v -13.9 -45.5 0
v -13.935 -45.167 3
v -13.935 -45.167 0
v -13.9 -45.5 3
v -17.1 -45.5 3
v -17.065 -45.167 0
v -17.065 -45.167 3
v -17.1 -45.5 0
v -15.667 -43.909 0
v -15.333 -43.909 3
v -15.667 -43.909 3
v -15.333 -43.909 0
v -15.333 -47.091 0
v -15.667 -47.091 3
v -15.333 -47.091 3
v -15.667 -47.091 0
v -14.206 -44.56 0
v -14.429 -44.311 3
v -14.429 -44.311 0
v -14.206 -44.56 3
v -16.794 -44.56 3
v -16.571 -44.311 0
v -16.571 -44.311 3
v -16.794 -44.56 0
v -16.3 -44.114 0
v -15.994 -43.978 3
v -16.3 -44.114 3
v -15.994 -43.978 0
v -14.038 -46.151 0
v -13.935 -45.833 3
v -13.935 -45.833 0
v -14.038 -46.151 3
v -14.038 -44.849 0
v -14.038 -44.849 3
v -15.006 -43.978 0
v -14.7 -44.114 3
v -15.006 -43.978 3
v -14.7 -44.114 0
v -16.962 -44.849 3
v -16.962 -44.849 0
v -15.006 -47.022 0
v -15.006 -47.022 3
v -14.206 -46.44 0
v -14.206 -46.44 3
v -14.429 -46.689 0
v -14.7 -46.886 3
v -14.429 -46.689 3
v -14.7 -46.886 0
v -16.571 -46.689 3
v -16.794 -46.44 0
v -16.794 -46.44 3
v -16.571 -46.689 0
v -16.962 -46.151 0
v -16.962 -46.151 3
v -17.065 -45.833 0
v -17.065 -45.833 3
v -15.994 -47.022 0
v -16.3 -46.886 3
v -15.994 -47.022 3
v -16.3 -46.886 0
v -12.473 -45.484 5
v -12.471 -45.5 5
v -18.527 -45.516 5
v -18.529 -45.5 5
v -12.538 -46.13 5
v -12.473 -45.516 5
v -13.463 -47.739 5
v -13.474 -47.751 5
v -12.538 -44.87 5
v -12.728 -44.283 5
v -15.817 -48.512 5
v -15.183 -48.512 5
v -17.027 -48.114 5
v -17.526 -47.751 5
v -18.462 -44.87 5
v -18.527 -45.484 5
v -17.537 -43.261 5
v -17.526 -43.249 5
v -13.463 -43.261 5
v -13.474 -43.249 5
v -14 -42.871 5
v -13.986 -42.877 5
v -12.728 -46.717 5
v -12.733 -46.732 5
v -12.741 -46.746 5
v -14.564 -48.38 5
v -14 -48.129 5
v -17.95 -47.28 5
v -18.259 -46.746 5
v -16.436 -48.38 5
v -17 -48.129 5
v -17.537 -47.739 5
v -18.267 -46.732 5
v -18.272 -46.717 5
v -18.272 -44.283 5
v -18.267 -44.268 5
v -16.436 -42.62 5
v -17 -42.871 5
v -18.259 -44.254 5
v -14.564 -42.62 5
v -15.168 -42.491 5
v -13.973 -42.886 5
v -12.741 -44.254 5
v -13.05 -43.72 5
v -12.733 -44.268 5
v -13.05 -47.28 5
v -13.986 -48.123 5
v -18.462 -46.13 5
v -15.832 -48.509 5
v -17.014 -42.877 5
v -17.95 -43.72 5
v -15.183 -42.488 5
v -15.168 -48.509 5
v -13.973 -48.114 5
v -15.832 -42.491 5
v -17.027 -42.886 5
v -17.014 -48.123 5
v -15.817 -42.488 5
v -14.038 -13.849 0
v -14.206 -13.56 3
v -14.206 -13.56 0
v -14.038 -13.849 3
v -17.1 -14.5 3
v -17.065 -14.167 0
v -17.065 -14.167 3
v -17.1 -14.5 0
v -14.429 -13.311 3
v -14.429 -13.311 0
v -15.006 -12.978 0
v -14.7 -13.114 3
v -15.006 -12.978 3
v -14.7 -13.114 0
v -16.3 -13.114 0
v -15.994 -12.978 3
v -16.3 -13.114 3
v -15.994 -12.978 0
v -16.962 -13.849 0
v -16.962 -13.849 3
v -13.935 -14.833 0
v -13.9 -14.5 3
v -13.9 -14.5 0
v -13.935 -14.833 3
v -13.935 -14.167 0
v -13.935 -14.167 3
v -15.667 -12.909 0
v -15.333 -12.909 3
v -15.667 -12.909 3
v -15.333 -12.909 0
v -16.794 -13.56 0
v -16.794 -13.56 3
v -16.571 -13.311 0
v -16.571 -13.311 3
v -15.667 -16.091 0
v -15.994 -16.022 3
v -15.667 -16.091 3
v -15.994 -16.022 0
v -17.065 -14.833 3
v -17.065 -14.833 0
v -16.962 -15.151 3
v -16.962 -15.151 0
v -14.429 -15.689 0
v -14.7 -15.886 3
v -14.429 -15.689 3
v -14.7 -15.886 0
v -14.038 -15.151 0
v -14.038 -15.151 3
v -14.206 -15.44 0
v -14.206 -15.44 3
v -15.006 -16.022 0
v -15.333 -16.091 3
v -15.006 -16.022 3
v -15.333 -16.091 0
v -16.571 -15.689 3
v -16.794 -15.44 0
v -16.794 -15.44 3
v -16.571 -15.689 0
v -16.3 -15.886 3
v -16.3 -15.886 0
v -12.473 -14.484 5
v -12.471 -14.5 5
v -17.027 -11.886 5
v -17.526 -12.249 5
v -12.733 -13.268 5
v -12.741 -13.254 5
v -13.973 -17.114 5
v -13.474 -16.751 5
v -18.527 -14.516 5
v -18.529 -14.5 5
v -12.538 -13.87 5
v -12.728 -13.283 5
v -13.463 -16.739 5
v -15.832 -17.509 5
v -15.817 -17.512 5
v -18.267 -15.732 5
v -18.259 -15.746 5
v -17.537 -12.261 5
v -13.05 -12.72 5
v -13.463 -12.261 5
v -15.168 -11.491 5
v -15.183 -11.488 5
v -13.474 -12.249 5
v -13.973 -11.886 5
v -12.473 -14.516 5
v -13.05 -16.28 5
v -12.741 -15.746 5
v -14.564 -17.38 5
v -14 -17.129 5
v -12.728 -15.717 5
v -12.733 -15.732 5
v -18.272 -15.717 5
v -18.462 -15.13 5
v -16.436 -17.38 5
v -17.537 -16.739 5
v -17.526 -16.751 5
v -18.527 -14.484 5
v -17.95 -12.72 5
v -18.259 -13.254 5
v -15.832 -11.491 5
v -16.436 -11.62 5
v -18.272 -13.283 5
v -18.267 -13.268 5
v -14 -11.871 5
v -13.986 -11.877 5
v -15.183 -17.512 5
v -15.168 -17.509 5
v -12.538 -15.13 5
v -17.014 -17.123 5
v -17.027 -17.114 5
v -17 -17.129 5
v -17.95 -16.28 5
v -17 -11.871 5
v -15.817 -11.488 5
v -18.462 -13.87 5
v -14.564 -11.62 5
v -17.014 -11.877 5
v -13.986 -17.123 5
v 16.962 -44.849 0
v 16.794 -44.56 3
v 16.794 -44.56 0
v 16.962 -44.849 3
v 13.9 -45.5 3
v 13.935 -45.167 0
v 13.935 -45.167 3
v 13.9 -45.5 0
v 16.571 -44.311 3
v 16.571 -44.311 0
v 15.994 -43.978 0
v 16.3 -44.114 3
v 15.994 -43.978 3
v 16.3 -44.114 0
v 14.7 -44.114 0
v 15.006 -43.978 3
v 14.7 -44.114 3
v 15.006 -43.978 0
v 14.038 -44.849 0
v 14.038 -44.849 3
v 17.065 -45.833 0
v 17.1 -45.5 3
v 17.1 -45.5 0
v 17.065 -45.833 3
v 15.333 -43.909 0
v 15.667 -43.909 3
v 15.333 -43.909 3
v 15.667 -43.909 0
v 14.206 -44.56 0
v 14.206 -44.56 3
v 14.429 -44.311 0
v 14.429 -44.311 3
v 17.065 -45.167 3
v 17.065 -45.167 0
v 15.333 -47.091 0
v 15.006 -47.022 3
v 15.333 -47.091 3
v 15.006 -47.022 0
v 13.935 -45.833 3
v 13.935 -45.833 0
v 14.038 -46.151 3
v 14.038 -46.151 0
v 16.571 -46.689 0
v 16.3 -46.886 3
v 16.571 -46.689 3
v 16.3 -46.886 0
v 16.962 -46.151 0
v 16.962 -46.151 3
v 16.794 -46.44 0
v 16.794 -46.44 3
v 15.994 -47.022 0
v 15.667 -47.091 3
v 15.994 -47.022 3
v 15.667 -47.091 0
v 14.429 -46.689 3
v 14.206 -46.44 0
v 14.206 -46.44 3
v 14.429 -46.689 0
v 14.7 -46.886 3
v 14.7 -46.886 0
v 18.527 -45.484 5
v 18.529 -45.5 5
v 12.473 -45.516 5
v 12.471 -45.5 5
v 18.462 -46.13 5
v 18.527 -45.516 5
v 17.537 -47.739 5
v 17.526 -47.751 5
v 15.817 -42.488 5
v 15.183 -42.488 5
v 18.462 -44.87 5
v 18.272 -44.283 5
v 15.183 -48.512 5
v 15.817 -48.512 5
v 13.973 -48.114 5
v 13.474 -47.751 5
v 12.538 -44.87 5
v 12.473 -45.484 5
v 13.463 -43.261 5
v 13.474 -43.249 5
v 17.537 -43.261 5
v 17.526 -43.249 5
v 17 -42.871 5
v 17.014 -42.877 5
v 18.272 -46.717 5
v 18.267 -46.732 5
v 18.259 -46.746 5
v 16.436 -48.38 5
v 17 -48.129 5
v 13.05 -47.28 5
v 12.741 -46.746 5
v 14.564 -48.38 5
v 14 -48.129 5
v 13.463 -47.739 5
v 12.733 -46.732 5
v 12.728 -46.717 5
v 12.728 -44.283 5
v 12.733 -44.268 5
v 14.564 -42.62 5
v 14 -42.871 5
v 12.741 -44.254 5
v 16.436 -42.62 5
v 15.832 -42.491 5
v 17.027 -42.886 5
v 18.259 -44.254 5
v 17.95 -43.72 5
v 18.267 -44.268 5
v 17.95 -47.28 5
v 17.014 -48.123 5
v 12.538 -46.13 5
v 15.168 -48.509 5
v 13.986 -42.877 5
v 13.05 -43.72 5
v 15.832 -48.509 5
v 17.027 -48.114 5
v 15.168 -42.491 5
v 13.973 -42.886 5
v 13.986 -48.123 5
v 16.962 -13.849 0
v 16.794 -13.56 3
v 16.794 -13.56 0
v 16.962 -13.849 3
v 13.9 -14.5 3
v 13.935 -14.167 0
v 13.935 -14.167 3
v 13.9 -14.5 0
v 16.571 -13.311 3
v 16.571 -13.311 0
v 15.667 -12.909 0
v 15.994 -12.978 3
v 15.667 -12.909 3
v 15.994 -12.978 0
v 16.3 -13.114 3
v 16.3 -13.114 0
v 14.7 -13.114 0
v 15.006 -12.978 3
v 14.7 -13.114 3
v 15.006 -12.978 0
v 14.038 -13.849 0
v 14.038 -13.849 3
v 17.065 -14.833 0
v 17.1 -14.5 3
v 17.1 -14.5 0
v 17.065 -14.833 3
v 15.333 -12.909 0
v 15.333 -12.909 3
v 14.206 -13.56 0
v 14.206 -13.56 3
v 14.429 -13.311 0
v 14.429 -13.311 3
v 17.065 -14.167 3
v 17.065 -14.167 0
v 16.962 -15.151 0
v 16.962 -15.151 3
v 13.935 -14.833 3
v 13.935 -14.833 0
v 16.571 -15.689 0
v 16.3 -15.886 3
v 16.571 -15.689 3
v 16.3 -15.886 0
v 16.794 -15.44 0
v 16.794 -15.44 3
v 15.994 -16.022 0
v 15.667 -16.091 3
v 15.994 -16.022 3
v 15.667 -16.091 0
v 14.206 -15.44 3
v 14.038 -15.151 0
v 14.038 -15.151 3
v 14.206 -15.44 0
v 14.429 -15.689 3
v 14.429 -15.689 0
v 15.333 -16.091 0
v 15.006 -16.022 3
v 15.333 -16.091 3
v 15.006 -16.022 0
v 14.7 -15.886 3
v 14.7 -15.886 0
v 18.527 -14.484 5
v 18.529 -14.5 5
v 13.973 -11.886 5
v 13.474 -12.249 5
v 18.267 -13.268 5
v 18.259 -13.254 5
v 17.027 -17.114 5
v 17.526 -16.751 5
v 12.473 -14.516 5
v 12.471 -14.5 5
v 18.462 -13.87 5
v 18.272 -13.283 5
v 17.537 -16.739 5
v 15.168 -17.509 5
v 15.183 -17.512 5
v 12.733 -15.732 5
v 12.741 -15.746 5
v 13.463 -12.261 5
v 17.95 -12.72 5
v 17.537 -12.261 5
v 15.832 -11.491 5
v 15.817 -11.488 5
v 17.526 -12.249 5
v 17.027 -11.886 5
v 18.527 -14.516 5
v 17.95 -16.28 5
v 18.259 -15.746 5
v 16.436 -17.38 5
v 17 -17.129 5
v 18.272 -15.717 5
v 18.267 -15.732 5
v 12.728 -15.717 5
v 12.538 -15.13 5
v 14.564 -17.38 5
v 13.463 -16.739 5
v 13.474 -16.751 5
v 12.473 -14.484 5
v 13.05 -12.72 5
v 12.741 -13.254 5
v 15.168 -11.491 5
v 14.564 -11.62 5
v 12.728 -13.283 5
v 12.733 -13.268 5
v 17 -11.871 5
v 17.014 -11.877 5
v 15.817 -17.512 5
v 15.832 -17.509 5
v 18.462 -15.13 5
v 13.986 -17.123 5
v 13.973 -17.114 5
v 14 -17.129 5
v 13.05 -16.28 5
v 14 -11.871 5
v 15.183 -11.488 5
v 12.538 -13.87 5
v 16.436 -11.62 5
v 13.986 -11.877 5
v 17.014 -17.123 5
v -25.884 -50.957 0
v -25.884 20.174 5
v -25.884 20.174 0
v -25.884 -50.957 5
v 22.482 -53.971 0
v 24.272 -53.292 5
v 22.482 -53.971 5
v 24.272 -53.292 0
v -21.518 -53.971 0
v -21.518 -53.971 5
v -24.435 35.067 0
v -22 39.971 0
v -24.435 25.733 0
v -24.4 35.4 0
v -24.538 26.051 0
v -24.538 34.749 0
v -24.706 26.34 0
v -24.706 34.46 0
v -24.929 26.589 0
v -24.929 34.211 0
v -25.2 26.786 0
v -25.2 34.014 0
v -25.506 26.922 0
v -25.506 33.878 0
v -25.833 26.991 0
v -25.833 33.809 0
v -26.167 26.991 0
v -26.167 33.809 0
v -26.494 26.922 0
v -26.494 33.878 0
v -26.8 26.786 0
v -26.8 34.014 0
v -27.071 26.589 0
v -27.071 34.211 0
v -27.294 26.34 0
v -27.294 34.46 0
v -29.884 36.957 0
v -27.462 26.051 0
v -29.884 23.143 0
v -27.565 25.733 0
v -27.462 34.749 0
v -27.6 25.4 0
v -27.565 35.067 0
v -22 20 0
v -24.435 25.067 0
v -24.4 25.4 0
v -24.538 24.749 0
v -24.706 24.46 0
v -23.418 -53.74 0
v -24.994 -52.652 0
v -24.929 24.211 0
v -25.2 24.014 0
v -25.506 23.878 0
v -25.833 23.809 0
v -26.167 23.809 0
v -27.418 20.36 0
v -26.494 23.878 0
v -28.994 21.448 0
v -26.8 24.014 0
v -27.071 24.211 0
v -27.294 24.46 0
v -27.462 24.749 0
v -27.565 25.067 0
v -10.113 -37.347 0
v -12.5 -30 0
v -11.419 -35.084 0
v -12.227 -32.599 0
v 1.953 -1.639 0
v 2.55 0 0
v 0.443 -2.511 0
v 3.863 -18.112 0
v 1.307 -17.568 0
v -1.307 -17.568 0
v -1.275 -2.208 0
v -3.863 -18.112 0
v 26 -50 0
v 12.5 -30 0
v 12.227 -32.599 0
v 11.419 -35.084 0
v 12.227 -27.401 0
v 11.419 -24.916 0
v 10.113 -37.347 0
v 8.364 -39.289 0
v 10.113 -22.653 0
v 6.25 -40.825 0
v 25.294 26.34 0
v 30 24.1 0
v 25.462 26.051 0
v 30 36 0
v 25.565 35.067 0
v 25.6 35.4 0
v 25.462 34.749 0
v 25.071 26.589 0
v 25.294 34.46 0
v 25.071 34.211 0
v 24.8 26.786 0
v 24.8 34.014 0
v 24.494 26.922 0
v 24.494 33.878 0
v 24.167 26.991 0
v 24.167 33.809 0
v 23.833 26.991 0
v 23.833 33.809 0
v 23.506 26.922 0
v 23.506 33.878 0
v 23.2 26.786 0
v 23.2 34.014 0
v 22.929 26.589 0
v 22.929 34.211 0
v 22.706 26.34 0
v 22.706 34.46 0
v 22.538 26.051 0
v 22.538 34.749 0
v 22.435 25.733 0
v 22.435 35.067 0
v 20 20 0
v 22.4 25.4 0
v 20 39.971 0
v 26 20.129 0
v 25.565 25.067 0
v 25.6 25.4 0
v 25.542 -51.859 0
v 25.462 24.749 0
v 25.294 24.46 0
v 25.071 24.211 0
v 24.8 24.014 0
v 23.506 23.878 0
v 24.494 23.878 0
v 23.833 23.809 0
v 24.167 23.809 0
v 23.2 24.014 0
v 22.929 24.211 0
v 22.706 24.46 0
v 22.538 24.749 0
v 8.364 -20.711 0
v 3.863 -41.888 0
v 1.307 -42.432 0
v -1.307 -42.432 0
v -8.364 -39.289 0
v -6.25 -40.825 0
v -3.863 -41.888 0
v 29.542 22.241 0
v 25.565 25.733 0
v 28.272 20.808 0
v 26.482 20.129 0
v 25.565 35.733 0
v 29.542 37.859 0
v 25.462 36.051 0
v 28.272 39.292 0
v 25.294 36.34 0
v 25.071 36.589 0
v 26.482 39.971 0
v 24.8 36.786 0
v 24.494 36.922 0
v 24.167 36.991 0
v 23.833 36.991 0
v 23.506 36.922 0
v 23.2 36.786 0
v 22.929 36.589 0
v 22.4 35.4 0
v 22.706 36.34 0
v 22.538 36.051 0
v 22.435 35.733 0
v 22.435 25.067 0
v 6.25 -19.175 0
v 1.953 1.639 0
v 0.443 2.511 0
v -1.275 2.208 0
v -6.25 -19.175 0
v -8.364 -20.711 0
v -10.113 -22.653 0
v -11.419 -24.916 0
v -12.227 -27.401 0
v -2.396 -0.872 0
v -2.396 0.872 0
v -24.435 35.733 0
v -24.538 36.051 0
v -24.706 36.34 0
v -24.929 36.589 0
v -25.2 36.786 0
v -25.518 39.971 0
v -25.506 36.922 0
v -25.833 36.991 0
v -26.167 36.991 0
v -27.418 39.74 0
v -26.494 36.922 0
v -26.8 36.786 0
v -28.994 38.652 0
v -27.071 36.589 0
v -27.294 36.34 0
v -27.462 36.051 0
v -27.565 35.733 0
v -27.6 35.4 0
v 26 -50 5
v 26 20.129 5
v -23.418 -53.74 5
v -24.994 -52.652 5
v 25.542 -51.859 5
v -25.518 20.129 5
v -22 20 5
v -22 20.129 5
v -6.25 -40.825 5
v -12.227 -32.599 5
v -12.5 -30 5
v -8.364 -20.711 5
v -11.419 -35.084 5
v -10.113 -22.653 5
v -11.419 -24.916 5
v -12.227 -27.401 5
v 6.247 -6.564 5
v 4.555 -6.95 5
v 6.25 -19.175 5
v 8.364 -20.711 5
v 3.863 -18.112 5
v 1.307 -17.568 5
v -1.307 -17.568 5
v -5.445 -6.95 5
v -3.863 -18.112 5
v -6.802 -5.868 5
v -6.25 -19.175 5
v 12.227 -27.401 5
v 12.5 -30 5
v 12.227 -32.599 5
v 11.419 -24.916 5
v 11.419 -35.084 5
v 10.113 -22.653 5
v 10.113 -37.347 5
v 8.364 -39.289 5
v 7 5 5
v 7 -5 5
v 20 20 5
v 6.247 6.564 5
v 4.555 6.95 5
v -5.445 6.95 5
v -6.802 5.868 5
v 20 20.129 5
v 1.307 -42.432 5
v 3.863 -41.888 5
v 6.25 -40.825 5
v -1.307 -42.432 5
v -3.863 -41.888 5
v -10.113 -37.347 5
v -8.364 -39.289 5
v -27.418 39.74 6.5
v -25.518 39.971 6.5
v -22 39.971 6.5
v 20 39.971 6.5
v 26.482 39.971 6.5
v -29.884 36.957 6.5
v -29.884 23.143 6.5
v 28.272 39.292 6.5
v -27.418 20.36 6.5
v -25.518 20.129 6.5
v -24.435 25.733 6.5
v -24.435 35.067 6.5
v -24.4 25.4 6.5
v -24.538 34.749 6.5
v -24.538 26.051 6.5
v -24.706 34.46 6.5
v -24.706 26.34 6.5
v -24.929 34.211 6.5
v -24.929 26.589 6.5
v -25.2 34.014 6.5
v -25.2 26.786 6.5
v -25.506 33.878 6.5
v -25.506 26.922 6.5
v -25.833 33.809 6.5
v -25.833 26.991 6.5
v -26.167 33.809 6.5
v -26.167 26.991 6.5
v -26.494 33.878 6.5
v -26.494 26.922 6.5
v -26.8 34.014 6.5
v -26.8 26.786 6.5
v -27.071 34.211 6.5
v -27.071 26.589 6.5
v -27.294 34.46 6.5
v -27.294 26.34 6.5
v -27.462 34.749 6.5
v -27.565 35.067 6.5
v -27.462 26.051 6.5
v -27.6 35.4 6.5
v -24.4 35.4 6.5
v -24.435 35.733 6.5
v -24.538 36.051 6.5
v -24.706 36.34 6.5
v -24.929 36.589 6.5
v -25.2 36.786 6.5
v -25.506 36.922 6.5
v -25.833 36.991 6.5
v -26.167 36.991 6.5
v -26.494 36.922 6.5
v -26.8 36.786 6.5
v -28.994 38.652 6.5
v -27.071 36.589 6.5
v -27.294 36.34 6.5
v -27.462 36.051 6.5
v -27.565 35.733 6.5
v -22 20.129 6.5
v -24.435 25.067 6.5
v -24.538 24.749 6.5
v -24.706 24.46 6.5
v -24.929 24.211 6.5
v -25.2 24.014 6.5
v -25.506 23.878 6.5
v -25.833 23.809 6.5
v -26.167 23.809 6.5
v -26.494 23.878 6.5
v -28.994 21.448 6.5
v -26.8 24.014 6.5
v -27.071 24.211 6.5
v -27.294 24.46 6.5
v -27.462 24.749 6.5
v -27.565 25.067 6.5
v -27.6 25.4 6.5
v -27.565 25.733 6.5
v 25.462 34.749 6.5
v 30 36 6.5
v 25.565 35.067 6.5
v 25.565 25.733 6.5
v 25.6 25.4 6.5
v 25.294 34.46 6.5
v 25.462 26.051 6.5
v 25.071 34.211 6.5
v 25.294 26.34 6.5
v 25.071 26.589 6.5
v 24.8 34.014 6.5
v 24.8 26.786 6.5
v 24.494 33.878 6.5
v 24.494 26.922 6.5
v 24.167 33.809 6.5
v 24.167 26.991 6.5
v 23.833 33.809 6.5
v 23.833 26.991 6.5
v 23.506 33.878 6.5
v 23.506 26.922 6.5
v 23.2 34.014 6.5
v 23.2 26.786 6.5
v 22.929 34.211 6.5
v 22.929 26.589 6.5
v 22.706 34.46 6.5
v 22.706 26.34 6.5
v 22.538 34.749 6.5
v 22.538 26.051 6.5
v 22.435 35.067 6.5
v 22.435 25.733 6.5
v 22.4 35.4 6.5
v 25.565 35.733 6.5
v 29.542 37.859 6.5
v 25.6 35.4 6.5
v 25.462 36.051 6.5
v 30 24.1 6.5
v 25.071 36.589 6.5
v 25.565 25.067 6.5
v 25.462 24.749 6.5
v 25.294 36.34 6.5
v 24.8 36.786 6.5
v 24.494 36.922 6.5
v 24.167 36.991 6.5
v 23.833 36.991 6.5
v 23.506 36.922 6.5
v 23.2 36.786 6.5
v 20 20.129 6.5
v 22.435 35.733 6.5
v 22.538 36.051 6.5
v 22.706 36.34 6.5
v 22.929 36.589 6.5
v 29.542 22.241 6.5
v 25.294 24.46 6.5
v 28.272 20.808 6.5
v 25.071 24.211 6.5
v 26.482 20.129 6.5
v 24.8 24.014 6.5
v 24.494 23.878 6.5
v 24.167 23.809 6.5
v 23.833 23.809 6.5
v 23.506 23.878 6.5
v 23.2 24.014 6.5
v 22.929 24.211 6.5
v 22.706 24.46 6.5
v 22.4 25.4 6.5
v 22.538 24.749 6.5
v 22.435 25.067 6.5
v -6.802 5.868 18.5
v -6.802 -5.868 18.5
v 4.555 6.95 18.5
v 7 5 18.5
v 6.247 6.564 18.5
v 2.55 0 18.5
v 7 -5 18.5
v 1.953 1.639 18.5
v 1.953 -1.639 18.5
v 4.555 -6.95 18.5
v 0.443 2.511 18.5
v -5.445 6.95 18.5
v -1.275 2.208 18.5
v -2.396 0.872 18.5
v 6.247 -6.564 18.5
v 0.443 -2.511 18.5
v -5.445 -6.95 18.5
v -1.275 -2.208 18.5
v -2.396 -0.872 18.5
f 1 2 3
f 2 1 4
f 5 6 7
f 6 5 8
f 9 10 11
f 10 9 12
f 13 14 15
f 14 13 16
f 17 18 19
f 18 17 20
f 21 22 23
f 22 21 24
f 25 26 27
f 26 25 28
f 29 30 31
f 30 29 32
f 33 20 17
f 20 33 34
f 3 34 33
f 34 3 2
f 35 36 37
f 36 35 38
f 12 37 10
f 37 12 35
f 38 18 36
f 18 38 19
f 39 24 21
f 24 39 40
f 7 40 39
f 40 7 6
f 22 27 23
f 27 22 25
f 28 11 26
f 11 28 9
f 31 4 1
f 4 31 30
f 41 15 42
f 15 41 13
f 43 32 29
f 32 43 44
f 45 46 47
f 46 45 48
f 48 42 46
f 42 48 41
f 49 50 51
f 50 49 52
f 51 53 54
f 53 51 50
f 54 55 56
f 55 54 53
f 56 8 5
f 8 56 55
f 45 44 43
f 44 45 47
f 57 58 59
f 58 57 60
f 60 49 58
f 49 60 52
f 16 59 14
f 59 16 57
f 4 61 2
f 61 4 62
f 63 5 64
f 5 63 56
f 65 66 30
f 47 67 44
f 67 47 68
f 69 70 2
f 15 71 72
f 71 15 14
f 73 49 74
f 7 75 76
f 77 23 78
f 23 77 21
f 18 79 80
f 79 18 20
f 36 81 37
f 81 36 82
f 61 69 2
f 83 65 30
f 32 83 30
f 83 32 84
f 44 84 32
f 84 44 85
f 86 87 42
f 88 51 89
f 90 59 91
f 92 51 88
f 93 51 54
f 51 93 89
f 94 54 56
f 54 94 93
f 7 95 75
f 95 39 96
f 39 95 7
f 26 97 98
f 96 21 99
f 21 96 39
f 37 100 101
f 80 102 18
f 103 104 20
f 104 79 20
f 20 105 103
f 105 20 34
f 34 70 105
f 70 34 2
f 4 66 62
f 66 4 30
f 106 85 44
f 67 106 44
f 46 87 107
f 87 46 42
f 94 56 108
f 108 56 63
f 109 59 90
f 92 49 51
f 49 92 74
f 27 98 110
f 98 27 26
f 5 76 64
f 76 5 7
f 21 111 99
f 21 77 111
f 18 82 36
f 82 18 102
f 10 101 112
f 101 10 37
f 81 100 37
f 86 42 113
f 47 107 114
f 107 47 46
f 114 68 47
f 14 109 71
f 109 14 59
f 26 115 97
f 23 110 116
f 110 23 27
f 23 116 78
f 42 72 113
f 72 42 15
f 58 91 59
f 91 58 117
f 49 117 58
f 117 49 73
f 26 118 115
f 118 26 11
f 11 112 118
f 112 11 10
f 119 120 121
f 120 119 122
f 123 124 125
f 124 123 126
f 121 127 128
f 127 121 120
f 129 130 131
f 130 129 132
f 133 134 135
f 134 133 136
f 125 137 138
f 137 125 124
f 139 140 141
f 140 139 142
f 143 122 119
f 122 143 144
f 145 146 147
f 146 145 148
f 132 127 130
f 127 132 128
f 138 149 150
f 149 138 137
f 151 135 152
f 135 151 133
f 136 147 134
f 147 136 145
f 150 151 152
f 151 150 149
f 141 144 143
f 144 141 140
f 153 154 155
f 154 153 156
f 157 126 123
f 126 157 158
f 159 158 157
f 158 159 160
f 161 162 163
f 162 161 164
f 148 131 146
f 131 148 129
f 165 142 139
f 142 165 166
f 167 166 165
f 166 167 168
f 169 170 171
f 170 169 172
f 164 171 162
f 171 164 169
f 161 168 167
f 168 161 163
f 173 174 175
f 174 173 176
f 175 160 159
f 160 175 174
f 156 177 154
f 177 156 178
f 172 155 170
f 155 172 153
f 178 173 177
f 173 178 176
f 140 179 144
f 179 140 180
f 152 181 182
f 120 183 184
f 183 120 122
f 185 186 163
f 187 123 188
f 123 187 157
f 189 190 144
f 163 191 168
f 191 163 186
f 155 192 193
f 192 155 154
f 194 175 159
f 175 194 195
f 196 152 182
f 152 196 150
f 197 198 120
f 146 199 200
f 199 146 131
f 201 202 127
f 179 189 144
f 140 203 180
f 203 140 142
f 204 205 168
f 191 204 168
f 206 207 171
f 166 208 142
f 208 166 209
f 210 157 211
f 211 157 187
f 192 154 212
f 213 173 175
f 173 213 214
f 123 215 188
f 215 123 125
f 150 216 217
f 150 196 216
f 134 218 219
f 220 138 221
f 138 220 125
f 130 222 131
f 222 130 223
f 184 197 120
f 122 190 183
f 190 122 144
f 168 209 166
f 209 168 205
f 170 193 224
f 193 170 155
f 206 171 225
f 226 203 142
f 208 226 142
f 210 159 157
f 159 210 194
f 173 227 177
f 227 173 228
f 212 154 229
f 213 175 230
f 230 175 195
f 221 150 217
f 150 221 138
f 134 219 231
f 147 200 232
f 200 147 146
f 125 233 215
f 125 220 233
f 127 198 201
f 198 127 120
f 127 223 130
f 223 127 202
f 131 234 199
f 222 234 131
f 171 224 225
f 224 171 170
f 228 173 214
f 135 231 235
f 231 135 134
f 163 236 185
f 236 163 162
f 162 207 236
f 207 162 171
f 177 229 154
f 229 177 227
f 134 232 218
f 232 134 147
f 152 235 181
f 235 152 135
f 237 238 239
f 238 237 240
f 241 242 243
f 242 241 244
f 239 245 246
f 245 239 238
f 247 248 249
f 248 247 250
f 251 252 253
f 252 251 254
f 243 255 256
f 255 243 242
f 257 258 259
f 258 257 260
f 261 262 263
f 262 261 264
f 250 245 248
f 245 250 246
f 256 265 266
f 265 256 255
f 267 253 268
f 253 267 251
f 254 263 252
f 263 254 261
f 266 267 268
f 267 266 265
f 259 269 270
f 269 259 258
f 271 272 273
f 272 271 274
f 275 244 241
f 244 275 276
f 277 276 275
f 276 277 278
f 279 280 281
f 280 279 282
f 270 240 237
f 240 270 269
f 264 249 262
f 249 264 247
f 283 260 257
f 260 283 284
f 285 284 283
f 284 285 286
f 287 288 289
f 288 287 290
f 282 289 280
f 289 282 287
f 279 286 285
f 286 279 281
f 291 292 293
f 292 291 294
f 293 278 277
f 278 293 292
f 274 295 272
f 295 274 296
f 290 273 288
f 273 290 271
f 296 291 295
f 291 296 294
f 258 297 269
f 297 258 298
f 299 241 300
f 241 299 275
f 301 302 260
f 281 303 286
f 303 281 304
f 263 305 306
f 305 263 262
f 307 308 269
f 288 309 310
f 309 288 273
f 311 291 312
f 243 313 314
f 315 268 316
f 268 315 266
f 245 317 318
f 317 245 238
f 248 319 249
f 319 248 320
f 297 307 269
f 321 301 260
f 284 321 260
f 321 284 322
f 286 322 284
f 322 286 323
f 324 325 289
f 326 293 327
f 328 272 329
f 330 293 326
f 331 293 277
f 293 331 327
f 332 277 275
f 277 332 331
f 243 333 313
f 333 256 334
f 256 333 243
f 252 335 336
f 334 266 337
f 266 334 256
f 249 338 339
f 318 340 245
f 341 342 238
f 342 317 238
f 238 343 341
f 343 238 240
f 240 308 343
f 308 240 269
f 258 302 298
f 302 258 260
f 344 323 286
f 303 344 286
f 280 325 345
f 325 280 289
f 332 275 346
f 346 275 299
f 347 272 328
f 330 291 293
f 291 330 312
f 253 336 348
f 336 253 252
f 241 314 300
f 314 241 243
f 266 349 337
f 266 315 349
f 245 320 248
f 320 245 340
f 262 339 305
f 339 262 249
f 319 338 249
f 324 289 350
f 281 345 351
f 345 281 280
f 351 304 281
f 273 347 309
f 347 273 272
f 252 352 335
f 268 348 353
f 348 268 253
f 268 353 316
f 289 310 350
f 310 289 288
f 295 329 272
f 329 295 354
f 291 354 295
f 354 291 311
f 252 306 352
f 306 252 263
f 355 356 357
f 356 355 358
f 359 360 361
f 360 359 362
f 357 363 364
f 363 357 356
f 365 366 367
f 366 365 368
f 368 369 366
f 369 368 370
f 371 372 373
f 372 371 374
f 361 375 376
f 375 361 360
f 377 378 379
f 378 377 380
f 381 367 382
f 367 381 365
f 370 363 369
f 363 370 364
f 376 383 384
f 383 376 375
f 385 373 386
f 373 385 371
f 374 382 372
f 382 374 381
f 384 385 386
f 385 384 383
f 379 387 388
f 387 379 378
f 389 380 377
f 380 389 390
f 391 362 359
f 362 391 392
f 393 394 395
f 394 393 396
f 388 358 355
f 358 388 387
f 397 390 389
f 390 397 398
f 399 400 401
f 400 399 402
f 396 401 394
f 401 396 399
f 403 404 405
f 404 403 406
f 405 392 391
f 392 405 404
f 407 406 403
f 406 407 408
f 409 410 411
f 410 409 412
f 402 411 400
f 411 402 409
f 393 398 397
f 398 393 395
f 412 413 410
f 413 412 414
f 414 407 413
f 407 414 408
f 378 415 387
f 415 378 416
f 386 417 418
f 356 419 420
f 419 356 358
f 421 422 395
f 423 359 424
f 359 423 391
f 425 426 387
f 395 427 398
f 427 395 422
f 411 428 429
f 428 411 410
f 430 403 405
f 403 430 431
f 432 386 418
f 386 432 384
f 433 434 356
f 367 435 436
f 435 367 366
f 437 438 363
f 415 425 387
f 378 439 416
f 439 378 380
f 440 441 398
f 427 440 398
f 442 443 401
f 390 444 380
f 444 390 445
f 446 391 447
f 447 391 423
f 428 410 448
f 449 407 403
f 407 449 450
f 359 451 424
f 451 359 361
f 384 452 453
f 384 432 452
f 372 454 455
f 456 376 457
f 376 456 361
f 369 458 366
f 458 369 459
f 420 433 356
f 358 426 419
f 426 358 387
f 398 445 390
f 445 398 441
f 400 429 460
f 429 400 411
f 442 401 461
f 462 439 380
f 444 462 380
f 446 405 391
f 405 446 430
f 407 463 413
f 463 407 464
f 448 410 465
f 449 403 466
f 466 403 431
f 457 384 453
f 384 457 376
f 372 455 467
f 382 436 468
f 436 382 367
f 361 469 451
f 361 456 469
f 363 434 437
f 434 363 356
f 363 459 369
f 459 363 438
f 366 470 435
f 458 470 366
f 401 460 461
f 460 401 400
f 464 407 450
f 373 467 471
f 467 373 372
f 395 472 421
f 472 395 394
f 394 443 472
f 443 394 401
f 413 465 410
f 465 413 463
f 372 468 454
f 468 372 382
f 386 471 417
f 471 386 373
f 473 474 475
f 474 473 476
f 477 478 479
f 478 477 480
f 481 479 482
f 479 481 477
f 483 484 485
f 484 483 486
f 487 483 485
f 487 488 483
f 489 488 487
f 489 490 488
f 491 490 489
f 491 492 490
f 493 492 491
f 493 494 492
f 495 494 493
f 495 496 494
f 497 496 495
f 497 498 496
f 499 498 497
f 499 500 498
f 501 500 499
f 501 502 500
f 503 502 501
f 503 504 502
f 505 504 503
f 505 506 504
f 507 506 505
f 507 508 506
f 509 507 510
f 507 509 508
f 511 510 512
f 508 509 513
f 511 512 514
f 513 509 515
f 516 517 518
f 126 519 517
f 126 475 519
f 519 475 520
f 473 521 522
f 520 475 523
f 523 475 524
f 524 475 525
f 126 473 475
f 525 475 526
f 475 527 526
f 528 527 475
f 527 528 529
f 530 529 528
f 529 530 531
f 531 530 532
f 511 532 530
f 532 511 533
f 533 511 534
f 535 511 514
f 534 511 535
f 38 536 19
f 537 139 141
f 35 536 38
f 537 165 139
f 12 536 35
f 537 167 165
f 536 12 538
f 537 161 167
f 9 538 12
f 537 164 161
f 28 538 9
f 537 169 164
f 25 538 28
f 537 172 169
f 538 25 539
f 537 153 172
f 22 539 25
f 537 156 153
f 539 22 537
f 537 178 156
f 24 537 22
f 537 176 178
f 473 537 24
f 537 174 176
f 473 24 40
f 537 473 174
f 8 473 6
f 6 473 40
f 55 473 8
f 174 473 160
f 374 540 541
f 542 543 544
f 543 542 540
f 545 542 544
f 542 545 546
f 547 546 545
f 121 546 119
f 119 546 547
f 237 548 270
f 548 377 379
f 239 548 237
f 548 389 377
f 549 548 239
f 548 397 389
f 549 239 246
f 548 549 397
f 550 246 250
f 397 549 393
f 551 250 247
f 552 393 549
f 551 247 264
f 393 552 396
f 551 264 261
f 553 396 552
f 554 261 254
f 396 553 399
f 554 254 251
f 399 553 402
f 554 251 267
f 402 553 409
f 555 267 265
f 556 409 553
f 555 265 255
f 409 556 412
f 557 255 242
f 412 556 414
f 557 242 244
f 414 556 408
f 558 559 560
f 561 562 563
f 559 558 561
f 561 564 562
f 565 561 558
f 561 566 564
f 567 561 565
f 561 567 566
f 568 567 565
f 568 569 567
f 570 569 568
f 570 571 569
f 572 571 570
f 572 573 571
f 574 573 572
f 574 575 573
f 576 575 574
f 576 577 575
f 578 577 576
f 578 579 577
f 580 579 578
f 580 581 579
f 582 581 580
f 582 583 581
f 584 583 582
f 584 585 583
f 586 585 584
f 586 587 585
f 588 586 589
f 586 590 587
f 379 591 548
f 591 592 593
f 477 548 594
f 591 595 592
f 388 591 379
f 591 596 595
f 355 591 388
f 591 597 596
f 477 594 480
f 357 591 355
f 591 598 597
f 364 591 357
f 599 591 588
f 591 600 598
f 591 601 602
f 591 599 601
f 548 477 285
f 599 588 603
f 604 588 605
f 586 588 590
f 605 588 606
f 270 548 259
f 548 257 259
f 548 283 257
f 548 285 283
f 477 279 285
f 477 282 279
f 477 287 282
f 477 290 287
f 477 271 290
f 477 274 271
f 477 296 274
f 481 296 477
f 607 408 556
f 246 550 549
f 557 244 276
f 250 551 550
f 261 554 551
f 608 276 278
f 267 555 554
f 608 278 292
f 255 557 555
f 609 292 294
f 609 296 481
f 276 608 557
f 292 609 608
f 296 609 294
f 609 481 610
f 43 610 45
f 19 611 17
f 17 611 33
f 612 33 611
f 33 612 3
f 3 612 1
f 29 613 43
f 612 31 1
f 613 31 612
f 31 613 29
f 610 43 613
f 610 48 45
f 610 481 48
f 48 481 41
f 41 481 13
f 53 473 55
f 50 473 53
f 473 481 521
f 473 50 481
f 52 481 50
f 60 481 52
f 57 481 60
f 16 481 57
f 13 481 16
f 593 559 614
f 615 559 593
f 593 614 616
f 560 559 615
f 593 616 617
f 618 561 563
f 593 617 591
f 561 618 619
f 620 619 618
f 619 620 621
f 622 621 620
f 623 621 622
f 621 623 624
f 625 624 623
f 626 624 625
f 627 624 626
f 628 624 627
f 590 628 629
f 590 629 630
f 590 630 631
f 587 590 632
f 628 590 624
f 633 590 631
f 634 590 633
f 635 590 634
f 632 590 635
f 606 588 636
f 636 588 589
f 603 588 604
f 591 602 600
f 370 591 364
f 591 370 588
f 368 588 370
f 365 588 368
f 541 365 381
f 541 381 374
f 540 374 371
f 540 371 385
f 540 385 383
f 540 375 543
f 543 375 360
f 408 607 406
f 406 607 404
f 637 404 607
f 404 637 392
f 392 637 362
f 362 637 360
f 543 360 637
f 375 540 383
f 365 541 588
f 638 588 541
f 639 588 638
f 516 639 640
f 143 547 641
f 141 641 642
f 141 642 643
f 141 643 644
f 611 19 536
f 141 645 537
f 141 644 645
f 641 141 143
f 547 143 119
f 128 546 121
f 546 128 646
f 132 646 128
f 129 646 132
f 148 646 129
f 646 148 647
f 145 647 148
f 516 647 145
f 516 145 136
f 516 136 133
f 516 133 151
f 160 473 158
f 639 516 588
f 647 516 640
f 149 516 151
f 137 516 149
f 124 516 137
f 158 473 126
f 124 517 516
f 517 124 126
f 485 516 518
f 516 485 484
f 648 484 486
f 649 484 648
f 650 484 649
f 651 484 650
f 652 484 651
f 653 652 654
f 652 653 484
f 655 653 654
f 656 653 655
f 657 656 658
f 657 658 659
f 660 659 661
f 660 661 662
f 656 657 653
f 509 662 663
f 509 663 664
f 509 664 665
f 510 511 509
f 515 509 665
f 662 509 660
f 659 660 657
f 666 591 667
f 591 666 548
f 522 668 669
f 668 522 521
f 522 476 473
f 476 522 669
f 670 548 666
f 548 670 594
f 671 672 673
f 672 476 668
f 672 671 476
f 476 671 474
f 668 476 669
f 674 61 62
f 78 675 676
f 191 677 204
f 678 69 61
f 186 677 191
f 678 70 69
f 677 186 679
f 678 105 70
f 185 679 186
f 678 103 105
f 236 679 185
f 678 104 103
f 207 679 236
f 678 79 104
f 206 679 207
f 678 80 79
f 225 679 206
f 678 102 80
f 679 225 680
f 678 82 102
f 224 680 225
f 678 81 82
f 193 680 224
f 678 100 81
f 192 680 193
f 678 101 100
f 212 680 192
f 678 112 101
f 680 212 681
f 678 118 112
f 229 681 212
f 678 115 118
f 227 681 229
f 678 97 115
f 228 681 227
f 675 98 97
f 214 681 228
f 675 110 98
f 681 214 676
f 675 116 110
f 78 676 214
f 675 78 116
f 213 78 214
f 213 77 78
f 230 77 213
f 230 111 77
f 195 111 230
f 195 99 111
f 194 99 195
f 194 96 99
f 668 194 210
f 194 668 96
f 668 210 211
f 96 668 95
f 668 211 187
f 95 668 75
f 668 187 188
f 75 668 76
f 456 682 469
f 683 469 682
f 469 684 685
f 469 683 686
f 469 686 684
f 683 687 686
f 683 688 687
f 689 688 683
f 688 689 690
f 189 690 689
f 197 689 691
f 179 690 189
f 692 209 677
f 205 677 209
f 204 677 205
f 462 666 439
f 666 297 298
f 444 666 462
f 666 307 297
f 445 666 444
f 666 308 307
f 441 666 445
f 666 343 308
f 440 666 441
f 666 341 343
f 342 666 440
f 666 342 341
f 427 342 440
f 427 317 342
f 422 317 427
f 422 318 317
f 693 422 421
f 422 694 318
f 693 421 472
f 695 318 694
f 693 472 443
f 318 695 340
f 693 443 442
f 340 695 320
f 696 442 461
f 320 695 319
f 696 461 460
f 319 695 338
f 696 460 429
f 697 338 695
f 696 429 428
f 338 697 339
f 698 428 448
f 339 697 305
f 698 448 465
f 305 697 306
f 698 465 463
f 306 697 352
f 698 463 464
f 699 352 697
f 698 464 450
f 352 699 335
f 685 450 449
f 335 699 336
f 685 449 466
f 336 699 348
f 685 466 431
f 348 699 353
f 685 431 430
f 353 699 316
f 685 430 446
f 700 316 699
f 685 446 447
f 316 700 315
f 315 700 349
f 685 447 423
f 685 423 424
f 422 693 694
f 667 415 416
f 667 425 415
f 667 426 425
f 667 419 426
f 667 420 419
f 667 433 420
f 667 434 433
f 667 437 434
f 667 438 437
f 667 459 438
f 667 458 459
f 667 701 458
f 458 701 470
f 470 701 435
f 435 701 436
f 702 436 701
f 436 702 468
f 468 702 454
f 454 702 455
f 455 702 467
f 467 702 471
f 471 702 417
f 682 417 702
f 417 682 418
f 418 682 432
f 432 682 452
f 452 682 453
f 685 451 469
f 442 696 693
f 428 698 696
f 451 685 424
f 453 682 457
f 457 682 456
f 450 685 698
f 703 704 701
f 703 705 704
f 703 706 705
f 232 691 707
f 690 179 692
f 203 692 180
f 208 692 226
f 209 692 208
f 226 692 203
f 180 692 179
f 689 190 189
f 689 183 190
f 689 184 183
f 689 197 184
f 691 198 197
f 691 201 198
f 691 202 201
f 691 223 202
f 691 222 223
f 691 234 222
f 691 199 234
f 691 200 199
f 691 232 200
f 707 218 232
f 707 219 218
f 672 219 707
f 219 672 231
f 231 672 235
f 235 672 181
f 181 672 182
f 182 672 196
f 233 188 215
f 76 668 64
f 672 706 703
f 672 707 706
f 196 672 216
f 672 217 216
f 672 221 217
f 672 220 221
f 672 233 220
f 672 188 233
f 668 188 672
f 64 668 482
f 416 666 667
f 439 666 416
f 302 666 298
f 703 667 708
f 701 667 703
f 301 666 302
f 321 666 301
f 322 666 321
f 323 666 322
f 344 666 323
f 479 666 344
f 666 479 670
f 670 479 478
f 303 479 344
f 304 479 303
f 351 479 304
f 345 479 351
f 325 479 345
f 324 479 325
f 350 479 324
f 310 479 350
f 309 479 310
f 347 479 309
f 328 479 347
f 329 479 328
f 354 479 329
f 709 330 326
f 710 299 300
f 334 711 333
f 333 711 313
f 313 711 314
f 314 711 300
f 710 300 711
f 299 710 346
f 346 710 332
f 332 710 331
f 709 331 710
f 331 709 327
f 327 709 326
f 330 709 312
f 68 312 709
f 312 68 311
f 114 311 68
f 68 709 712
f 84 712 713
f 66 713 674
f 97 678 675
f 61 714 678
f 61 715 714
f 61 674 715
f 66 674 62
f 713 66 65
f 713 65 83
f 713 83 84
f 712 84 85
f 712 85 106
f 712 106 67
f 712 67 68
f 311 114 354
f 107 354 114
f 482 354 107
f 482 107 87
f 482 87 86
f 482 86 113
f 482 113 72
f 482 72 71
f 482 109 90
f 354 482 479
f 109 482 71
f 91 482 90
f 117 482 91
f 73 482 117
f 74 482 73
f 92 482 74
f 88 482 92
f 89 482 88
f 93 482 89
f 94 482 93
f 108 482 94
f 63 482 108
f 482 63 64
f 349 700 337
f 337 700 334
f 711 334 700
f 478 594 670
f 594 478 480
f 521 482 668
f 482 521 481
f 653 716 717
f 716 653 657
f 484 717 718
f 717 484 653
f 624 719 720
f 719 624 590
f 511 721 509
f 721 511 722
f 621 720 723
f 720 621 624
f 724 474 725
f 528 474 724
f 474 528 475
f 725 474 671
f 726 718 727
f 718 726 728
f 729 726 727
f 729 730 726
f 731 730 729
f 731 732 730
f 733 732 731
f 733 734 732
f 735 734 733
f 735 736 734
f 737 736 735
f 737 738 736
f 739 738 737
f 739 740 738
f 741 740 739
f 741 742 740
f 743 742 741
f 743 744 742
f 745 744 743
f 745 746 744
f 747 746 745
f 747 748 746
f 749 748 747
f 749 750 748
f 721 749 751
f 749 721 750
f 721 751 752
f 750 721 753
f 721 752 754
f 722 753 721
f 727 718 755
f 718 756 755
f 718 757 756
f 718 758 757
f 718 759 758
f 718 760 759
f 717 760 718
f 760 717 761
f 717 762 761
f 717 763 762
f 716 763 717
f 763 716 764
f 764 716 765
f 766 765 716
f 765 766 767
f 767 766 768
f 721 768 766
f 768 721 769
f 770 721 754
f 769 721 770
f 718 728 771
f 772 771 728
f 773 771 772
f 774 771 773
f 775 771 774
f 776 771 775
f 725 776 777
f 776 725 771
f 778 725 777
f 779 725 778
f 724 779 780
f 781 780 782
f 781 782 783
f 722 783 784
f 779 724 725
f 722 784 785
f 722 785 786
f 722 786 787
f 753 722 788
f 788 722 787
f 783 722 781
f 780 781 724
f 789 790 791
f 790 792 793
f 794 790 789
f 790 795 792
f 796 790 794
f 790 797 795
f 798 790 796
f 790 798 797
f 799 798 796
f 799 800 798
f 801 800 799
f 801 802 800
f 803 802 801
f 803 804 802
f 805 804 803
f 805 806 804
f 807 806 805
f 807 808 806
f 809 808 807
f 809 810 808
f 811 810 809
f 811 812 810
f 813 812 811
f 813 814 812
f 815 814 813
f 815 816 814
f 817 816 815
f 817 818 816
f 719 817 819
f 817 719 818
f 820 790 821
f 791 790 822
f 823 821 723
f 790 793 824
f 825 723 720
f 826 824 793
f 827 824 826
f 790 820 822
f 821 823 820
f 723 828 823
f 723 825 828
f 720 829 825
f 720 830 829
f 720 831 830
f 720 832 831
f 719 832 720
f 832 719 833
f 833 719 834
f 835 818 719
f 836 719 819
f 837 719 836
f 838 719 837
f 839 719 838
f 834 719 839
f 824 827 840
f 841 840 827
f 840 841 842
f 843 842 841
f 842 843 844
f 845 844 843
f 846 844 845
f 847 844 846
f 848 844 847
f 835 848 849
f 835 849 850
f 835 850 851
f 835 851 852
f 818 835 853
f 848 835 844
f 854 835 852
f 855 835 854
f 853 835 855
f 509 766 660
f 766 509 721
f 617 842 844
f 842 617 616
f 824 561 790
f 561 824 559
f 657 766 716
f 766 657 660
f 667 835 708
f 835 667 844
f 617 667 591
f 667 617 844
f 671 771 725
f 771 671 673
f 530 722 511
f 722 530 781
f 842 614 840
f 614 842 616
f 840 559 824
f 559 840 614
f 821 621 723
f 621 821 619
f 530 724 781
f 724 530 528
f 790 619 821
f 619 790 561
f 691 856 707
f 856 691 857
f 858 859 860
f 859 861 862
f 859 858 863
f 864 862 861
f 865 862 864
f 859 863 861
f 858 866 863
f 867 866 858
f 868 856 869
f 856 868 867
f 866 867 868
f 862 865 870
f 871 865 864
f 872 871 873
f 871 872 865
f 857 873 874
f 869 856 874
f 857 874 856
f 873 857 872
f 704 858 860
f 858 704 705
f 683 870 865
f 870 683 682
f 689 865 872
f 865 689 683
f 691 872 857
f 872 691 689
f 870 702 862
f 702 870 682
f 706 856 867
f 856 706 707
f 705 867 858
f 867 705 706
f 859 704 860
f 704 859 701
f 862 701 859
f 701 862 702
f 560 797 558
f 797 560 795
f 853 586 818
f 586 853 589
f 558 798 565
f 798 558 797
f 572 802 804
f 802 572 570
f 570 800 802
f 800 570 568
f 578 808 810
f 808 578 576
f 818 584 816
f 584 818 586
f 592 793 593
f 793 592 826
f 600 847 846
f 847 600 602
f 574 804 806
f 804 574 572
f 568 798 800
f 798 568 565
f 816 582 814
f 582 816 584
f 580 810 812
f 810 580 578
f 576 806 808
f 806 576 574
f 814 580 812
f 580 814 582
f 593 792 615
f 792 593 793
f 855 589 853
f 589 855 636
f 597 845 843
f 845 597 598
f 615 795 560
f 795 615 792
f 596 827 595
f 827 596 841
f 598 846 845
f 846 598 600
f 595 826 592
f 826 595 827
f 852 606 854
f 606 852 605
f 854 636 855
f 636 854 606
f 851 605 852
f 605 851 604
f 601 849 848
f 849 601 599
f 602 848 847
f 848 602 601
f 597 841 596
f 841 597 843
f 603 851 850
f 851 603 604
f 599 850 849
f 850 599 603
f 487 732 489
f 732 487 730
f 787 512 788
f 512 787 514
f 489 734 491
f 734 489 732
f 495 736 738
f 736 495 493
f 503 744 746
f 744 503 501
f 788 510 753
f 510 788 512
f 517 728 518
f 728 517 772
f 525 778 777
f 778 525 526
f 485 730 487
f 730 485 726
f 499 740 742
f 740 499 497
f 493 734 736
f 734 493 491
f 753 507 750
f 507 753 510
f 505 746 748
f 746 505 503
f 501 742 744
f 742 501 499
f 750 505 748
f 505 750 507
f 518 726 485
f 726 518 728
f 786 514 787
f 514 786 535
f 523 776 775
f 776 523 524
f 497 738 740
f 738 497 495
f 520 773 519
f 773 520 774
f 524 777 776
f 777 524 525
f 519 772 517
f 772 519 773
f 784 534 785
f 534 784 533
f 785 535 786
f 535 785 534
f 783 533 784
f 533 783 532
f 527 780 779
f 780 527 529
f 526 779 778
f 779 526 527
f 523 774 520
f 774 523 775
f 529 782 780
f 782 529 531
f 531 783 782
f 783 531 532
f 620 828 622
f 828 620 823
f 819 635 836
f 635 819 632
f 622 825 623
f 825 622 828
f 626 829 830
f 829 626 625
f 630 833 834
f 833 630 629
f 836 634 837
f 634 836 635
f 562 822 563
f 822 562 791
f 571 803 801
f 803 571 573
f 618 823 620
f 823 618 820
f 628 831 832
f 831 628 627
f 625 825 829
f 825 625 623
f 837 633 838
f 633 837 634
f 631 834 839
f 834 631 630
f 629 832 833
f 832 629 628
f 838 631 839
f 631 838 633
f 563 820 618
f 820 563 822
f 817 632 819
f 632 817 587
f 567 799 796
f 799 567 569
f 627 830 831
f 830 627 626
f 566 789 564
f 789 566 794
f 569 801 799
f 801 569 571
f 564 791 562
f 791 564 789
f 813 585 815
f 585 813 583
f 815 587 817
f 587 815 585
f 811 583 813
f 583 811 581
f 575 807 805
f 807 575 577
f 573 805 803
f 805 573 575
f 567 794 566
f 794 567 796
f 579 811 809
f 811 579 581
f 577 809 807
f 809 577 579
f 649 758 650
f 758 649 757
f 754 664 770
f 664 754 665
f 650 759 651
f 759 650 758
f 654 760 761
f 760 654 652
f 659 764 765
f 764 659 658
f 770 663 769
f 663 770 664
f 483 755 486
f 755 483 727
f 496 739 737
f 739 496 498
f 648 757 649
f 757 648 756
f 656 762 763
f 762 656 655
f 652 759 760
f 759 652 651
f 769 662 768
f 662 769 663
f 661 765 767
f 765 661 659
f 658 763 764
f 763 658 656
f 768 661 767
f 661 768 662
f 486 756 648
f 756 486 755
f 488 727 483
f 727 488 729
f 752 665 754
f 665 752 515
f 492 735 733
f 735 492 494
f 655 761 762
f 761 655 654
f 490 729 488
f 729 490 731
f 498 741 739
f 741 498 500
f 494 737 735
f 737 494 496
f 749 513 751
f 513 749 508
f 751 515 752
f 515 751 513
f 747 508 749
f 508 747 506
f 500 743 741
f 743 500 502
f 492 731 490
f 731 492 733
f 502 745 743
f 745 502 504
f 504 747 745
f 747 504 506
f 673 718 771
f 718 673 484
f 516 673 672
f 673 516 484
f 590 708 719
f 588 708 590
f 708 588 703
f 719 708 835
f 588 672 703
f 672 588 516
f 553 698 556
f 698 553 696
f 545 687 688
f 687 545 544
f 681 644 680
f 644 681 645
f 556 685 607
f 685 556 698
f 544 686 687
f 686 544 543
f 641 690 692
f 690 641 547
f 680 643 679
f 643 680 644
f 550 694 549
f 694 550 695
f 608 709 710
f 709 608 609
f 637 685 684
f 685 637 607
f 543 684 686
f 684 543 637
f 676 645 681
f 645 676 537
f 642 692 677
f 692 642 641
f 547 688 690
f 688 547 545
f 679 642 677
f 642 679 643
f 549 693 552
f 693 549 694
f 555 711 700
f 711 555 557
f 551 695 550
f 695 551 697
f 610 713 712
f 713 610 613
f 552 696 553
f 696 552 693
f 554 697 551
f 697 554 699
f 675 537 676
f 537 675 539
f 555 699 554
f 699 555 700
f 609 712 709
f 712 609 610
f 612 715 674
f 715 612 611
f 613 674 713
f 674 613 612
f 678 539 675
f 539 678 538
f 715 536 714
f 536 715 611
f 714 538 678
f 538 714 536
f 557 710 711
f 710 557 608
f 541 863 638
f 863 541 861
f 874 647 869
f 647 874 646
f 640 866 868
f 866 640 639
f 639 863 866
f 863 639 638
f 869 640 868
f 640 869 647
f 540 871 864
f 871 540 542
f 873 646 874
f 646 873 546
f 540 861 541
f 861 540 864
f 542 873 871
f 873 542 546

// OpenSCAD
// file: commons.scad
/**
 * 
 * ommons.scad
 * 
 * Created by Diego Viejo
 * 28/Oct/2015
 * 
 * Common definitions for pendulum extruder
 * 
 */

anguloRot = 8; 

anguloActual = -anguloRot;

pendulumHeight = 6; //4
shaftDist = (42+16)/2+1; //(nema17width + 625zzDiam)/2 + 1;
shaftPos = 15+7.5+0.25;
tipPos = shaftPos-9.72/2;
tipHeight = pendulumHeight+10.4+0.25;

backPlateHeight = 5;
servoWidth = 41.5 + 0.5;
// main file
/**
 * BackPlate.scad
 * 
 * Created by Diego Viejo
 * 2/Nov/2015
 * 
 */

include<commons.scad>

backPlate();

module backPlate()
difference()
{
    union()
    {
      //main body
      hull()
      {
	translate([-22, -shaftDist-20, 0]) cylinder(d=8, h=backPlateHeight);
	translate([22, -shaftDist-20, 0]) cylinder(d=8, h=backPlateHeight);
	translate([-22, shaftDist+2, 0]) cylinder(d=8, h=backPlateHeight);
	translate([22, shaftDist+2, 0]) cylinder(d=8, h=backPlateHeight);
      }
      //servo
      hull()
      {
	translate([-26, shaftDist+6, 0]) cylinder(d=8, h=backPlateHeight+1.5);
	translate([26, shaftDist+6, 0]) cylinder(d=8, h=backPlateHeight+1.5);
	translate([-26, shaftDist-10+4.1, 0]) cylinder(d=8, h=backPlateHeight+1.5);
	translate([26, shaftDist-10+4.1, 0]) cylinder(d=8, h=backPlateHeight+1.5);
      }
      //main shaft
      hull()
      {
	translate([-5, -5, 0]) cylinder(d=4, h=backPlateHeight+14-0.5);
	translate([5, -5, 0]) cylinder(d=4, h=backPlateHeight+14-0.5);
	translate([-5, 5, 0]) cylinder(d=4, h=backPlateHeight+14-0.5);
	translate([5, 5, 0]) cylinder(d=4, h=backPlateHeight+14-0.5);
      }

    }
    
    //servo housing
    translate([-40/2-(servoWidth-40), shaftDist-10, -1]) cube([servoWidth, 20+1, backPlateHeight+14+2]);
    for(j=[-1,1])
    {
	translate([24, shaftDist+0.4+j*5.0, -1]) cylinder(d=3.2, h=backPlateHeight+10+2, $fn=30);
	translate([-24-(servoWidth-40), shaftDist+0.4+j*5.0, -1]) cylinder(d=3.2, h=backPlateHeight+10+2, $fn=30);
    }
    
    //PaP housing
    translate([0, -shaftDist, -1]) cylinder(d=25, h=backPlateHeight+2);
    for(i=[-1, 1])
      for(j=[-1,1])
	translate([i*15.5, -shaftDist+j*15.5, 0])
	{
	  translate([0, 0, -1]) cylinder(d=3.2, h=backPlateHeight+2, $fn=30);
	  translate([0, 0, backPlateHeight-2]) cylinder(d2=6.2, d1=3.2, h=2.1, $fn=30);
	}

    //main shaft
    translate([0, 0, -1]) cylinder(d=5.1, h=backPlateHeight+14 +2);
}
